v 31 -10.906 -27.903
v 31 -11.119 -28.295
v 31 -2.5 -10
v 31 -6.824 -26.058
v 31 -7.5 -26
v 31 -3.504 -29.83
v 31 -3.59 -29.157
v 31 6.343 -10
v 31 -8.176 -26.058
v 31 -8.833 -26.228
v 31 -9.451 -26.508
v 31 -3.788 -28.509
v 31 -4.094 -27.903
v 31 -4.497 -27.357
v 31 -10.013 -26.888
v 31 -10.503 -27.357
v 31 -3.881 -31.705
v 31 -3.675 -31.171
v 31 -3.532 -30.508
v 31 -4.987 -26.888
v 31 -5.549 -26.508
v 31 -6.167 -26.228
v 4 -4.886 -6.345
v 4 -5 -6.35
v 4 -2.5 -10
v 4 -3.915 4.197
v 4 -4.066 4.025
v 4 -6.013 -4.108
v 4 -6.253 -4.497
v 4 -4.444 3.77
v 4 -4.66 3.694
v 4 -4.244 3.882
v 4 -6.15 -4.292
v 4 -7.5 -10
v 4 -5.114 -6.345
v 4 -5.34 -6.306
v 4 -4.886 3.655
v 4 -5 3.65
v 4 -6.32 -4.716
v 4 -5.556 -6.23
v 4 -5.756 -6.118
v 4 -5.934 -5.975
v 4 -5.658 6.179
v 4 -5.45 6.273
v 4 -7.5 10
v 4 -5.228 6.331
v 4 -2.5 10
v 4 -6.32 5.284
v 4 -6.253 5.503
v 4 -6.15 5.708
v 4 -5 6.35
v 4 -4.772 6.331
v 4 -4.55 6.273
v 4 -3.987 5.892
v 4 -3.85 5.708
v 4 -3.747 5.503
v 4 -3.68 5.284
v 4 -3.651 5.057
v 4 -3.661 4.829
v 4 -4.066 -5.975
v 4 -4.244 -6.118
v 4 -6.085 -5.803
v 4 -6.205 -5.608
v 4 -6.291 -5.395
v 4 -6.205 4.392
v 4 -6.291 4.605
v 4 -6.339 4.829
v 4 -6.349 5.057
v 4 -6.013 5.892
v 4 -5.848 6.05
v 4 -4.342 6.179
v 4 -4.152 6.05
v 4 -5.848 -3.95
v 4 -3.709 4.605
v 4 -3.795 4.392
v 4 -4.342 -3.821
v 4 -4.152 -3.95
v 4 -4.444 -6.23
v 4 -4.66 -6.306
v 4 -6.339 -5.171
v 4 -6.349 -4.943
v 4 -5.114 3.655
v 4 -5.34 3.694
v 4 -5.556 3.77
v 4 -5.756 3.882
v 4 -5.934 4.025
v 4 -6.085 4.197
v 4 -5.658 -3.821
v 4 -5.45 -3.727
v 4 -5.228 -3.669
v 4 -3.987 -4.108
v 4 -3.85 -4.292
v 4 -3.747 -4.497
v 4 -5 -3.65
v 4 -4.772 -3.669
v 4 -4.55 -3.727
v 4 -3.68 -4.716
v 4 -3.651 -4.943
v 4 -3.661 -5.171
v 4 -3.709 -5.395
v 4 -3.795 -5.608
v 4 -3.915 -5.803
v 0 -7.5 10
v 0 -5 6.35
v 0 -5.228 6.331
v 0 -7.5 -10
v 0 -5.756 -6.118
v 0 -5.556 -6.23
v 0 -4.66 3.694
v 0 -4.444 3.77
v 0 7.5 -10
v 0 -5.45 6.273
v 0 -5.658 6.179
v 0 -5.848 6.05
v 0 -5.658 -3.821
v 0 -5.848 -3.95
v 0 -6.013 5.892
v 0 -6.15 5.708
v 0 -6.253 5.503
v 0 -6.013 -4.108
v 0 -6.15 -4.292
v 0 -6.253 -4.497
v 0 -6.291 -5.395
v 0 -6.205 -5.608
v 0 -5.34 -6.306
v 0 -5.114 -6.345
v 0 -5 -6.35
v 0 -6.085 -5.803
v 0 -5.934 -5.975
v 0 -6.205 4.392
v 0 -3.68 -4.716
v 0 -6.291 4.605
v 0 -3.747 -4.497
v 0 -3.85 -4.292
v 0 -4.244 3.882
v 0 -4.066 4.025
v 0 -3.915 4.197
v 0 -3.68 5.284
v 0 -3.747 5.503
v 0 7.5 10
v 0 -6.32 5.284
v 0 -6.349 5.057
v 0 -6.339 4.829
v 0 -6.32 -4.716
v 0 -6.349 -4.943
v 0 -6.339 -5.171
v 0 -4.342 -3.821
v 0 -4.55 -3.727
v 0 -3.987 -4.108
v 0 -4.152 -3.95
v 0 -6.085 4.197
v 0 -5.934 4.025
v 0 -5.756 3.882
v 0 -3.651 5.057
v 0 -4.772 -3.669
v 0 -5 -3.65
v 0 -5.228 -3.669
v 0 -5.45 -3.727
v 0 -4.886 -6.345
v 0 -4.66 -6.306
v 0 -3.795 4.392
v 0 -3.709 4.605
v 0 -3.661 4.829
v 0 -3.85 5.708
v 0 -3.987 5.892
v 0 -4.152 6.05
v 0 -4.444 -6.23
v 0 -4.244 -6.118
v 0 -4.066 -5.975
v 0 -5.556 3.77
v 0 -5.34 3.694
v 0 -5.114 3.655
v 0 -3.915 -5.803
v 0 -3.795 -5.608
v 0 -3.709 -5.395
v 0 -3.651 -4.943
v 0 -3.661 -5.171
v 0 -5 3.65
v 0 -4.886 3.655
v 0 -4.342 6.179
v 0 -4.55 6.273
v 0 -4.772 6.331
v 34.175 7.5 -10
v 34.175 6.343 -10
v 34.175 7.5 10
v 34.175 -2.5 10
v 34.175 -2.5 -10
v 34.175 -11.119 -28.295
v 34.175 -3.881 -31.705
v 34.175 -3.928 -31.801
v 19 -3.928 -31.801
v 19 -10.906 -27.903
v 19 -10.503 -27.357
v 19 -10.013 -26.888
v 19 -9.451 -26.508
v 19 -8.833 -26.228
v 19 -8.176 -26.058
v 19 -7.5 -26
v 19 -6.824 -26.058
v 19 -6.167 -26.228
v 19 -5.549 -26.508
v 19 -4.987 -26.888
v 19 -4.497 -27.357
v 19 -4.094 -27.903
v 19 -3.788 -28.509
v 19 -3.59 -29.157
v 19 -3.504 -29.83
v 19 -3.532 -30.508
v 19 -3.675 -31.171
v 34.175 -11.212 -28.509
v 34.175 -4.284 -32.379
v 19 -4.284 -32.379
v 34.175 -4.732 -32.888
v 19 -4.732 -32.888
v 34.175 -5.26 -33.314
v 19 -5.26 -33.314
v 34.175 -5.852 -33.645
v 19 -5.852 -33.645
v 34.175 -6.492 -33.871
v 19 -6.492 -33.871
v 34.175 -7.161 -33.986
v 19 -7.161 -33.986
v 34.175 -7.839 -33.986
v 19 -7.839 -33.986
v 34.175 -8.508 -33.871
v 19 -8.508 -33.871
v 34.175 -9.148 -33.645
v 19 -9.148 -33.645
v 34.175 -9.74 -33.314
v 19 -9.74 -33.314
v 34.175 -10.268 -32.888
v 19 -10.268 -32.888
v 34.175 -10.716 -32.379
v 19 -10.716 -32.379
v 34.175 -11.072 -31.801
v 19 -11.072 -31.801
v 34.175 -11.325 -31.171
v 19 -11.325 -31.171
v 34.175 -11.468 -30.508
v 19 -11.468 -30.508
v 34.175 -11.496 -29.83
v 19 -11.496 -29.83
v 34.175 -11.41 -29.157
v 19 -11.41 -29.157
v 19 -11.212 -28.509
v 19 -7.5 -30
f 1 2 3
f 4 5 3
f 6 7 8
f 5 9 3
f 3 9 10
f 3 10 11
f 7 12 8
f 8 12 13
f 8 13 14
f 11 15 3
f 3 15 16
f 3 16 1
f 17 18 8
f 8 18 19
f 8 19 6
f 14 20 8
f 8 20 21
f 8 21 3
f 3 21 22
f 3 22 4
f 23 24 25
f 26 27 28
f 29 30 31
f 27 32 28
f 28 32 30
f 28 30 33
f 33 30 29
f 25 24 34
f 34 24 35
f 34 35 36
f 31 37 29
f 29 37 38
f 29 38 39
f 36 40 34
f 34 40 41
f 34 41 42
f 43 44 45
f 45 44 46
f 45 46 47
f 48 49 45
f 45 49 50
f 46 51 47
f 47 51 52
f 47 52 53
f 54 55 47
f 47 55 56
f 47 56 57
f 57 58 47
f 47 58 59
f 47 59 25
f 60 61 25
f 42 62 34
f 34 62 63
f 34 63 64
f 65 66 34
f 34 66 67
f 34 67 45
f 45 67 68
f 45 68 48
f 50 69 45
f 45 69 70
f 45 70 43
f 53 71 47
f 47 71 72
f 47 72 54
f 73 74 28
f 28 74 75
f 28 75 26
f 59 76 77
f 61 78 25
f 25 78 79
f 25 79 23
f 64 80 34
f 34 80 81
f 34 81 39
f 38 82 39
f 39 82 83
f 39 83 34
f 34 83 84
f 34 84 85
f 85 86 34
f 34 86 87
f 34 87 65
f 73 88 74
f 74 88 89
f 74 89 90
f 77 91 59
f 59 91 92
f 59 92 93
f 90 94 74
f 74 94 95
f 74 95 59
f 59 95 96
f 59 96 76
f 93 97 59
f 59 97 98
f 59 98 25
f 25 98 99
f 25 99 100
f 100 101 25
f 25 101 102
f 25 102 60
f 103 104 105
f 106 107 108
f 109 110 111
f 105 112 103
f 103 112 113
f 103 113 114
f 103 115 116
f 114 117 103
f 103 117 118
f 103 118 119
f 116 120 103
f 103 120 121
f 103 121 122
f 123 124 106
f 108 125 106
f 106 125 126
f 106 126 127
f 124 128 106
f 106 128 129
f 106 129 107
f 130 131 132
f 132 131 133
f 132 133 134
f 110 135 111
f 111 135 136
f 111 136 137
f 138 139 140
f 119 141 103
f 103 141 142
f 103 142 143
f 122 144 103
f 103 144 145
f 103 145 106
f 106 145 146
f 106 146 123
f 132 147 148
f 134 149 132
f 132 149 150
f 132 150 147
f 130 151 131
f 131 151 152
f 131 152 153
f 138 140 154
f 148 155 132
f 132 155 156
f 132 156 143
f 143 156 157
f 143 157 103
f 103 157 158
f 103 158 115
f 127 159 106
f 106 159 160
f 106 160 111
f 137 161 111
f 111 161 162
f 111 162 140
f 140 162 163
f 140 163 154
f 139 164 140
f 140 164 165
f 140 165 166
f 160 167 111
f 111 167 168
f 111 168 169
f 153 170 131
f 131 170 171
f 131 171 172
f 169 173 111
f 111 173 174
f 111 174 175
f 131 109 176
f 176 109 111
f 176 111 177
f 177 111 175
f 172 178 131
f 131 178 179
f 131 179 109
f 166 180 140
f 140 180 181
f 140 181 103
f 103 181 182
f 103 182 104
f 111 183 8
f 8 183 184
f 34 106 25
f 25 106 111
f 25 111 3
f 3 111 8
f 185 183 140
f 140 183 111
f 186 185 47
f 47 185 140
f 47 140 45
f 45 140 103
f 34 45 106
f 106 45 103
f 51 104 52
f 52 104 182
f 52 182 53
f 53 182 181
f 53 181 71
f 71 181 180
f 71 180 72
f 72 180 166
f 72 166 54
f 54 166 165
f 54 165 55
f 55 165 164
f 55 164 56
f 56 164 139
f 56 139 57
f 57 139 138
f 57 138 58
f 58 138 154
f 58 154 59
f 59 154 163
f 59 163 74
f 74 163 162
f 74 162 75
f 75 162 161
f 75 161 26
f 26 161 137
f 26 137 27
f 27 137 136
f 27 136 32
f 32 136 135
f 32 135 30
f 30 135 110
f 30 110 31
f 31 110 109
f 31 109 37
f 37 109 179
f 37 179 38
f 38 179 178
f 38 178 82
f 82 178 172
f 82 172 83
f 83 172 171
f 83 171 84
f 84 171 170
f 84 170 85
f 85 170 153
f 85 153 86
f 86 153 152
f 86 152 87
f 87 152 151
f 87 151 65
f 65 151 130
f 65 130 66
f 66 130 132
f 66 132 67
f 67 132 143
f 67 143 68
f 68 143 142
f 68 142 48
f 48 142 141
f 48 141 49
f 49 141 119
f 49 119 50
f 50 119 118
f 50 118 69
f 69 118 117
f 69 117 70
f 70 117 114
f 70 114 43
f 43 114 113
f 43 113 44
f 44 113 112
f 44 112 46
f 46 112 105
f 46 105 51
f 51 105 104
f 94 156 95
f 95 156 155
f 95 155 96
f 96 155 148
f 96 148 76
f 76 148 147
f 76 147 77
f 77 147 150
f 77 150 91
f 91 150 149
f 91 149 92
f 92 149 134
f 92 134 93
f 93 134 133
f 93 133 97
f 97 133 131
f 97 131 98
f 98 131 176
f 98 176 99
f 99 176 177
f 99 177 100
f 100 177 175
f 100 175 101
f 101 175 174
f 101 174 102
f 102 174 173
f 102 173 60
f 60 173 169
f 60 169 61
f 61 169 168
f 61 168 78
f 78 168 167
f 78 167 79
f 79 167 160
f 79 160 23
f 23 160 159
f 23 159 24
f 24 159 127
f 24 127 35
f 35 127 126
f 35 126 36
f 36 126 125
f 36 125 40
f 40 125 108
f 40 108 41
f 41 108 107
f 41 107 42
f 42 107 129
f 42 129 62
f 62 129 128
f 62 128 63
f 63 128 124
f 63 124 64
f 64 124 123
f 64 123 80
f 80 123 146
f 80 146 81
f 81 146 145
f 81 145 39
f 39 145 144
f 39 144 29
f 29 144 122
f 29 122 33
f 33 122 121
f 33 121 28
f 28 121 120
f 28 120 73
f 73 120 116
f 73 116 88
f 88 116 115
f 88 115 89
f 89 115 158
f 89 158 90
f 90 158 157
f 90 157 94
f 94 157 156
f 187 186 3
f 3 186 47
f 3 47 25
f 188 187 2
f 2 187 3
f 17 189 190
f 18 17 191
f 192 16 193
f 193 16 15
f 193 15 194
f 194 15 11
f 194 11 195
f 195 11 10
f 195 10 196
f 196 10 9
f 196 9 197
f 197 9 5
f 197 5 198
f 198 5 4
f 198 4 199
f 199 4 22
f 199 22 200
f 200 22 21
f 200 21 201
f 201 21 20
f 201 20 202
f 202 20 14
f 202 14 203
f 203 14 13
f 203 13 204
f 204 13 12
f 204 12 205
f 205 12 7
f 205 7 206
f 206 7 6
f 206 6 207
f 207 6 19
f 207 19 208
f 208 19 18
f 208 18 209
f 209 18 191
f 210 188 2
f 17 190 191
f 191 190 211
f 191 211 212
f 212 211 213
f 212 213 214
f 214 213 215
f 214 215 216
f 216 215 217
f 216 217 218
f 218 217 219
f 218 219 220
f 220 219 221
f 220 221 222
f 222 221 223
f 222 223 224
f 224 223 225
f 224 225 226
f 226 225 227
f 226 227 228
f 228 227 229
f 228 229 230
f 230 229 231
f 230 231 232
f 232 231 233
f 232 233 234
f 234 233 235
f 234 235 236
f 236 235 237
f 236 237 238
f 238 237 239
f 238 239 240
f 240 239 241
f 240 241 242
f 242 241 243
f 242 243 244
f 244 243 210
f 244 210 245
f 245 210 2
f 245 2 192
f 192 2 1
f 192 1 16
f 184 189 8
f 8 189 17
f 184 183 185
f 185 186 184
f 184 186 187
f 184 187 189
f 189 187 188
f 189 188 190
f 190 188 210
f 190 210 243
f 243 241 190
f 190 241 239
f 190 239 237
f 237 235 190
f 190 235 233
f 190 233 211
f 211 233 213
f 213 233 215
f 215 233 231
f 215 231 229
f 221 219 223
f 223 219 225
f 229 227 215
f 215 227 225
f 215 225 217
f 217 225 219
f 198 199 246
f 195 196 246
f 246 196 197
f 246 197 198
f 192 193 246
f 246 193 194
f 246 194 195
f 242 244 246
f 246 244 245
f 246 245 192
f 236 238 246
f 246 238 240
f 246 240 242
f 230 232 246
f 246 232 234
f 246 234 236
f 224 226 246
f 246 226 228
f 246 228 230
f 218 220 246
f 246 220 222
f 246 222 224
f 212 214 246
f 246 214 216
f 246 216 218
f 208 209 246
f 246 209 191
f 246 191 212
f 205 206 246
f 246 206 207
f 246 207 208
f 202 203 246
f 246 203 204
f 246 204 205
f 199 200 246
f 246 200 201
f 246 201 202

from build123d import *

# Parameters (mm, degrees)
SKETCH1_W           = 20
SKETCH1_H           = 15
SKETCH1_R           = 1.35
BOSS_EXTRUDE1_DEPTH = 4
SKETCH2_W           = 20
SKETCH2_H           = 10
BOSS_EXTRUDE2_DEPTH = 27
BOSS_EXTRUDE3_DEPTH = 3.175
BOSS_EXTRUDE4_START = 12
SKETCH4_R           = 4
BOSS_EXTRUDE4_DEPTH = 12


with BuildPart() as part:
    # Sketch1 → Boss-Extrude1 (new body)
    with BuildSketch(Plane(origin=(0, 0, 0), x_dir=(0, 0, -1), z_dir=(1, 0, 0))):
        Rectangle(SKETCH1_W, SKETCH1_H)
        with Locations((-5, -5)):
            Circle(SKETCH1_R, mode=Mode.SUBTRACT)
        with Locations((5, -5)):
            Circle(SKETCH1_R, mode=Mode.SUBTRACT)
    extrude(amount=BOSS_EXTRUDE1_DEPTH)

    # Sketch2 → Boss-Extrude2 (add)
    with BuildSketch(Plane(origin=(4, 0, 0), x_dir=(0, 0, -1), z_dir=(1, 0, 0))):
        with Locations((0, 2.5)):
            Rectangle(SKETCH2_W, SKETCH2_H)
    extrude(amount=BOSS_EXTRUDE2_DEPTH)

    # Sketch3 → Boss-Extrude3 (add)
    with BuildSketch(Plane(origin=(31, 0, 0), x_dir=(0, 0, -1), z_dir=(1, 0, 0))):
        with BuildLine():
            Line((10, 7.5), (-10, 7.5))
            Line((-10, 7.5), (-10, -2.5))
            Line((-10, -2.5), (10, -2.5))
            Line((10, -2.5), (28.295353016, -11.118587937))
            ThreePointArc((28.295353016, -11.118587937), (33.618587937, -9.204646984), (31.704646984, -3.881412063))
            Line((31.704646984, -3.881412063), (10, 6.343228507))
            Line((10, 6.343228507), (10, 7.5))
        make_face()
    extrude(amount=BOSS_EXTRUDE3_DEPTH)

    # Sketch4 → Boss-Extrude4 (add)
    with BuildSketch(Plane.ZY.offset(-31).offset(BOSS_EXTRUDE4_START)):
        with Locations((-30, -7.5)):
            Circle(SKETCH4_R)
    extrude(amount=-BOSS_EXTRUDE4_DEPTH)


solid = part.part
